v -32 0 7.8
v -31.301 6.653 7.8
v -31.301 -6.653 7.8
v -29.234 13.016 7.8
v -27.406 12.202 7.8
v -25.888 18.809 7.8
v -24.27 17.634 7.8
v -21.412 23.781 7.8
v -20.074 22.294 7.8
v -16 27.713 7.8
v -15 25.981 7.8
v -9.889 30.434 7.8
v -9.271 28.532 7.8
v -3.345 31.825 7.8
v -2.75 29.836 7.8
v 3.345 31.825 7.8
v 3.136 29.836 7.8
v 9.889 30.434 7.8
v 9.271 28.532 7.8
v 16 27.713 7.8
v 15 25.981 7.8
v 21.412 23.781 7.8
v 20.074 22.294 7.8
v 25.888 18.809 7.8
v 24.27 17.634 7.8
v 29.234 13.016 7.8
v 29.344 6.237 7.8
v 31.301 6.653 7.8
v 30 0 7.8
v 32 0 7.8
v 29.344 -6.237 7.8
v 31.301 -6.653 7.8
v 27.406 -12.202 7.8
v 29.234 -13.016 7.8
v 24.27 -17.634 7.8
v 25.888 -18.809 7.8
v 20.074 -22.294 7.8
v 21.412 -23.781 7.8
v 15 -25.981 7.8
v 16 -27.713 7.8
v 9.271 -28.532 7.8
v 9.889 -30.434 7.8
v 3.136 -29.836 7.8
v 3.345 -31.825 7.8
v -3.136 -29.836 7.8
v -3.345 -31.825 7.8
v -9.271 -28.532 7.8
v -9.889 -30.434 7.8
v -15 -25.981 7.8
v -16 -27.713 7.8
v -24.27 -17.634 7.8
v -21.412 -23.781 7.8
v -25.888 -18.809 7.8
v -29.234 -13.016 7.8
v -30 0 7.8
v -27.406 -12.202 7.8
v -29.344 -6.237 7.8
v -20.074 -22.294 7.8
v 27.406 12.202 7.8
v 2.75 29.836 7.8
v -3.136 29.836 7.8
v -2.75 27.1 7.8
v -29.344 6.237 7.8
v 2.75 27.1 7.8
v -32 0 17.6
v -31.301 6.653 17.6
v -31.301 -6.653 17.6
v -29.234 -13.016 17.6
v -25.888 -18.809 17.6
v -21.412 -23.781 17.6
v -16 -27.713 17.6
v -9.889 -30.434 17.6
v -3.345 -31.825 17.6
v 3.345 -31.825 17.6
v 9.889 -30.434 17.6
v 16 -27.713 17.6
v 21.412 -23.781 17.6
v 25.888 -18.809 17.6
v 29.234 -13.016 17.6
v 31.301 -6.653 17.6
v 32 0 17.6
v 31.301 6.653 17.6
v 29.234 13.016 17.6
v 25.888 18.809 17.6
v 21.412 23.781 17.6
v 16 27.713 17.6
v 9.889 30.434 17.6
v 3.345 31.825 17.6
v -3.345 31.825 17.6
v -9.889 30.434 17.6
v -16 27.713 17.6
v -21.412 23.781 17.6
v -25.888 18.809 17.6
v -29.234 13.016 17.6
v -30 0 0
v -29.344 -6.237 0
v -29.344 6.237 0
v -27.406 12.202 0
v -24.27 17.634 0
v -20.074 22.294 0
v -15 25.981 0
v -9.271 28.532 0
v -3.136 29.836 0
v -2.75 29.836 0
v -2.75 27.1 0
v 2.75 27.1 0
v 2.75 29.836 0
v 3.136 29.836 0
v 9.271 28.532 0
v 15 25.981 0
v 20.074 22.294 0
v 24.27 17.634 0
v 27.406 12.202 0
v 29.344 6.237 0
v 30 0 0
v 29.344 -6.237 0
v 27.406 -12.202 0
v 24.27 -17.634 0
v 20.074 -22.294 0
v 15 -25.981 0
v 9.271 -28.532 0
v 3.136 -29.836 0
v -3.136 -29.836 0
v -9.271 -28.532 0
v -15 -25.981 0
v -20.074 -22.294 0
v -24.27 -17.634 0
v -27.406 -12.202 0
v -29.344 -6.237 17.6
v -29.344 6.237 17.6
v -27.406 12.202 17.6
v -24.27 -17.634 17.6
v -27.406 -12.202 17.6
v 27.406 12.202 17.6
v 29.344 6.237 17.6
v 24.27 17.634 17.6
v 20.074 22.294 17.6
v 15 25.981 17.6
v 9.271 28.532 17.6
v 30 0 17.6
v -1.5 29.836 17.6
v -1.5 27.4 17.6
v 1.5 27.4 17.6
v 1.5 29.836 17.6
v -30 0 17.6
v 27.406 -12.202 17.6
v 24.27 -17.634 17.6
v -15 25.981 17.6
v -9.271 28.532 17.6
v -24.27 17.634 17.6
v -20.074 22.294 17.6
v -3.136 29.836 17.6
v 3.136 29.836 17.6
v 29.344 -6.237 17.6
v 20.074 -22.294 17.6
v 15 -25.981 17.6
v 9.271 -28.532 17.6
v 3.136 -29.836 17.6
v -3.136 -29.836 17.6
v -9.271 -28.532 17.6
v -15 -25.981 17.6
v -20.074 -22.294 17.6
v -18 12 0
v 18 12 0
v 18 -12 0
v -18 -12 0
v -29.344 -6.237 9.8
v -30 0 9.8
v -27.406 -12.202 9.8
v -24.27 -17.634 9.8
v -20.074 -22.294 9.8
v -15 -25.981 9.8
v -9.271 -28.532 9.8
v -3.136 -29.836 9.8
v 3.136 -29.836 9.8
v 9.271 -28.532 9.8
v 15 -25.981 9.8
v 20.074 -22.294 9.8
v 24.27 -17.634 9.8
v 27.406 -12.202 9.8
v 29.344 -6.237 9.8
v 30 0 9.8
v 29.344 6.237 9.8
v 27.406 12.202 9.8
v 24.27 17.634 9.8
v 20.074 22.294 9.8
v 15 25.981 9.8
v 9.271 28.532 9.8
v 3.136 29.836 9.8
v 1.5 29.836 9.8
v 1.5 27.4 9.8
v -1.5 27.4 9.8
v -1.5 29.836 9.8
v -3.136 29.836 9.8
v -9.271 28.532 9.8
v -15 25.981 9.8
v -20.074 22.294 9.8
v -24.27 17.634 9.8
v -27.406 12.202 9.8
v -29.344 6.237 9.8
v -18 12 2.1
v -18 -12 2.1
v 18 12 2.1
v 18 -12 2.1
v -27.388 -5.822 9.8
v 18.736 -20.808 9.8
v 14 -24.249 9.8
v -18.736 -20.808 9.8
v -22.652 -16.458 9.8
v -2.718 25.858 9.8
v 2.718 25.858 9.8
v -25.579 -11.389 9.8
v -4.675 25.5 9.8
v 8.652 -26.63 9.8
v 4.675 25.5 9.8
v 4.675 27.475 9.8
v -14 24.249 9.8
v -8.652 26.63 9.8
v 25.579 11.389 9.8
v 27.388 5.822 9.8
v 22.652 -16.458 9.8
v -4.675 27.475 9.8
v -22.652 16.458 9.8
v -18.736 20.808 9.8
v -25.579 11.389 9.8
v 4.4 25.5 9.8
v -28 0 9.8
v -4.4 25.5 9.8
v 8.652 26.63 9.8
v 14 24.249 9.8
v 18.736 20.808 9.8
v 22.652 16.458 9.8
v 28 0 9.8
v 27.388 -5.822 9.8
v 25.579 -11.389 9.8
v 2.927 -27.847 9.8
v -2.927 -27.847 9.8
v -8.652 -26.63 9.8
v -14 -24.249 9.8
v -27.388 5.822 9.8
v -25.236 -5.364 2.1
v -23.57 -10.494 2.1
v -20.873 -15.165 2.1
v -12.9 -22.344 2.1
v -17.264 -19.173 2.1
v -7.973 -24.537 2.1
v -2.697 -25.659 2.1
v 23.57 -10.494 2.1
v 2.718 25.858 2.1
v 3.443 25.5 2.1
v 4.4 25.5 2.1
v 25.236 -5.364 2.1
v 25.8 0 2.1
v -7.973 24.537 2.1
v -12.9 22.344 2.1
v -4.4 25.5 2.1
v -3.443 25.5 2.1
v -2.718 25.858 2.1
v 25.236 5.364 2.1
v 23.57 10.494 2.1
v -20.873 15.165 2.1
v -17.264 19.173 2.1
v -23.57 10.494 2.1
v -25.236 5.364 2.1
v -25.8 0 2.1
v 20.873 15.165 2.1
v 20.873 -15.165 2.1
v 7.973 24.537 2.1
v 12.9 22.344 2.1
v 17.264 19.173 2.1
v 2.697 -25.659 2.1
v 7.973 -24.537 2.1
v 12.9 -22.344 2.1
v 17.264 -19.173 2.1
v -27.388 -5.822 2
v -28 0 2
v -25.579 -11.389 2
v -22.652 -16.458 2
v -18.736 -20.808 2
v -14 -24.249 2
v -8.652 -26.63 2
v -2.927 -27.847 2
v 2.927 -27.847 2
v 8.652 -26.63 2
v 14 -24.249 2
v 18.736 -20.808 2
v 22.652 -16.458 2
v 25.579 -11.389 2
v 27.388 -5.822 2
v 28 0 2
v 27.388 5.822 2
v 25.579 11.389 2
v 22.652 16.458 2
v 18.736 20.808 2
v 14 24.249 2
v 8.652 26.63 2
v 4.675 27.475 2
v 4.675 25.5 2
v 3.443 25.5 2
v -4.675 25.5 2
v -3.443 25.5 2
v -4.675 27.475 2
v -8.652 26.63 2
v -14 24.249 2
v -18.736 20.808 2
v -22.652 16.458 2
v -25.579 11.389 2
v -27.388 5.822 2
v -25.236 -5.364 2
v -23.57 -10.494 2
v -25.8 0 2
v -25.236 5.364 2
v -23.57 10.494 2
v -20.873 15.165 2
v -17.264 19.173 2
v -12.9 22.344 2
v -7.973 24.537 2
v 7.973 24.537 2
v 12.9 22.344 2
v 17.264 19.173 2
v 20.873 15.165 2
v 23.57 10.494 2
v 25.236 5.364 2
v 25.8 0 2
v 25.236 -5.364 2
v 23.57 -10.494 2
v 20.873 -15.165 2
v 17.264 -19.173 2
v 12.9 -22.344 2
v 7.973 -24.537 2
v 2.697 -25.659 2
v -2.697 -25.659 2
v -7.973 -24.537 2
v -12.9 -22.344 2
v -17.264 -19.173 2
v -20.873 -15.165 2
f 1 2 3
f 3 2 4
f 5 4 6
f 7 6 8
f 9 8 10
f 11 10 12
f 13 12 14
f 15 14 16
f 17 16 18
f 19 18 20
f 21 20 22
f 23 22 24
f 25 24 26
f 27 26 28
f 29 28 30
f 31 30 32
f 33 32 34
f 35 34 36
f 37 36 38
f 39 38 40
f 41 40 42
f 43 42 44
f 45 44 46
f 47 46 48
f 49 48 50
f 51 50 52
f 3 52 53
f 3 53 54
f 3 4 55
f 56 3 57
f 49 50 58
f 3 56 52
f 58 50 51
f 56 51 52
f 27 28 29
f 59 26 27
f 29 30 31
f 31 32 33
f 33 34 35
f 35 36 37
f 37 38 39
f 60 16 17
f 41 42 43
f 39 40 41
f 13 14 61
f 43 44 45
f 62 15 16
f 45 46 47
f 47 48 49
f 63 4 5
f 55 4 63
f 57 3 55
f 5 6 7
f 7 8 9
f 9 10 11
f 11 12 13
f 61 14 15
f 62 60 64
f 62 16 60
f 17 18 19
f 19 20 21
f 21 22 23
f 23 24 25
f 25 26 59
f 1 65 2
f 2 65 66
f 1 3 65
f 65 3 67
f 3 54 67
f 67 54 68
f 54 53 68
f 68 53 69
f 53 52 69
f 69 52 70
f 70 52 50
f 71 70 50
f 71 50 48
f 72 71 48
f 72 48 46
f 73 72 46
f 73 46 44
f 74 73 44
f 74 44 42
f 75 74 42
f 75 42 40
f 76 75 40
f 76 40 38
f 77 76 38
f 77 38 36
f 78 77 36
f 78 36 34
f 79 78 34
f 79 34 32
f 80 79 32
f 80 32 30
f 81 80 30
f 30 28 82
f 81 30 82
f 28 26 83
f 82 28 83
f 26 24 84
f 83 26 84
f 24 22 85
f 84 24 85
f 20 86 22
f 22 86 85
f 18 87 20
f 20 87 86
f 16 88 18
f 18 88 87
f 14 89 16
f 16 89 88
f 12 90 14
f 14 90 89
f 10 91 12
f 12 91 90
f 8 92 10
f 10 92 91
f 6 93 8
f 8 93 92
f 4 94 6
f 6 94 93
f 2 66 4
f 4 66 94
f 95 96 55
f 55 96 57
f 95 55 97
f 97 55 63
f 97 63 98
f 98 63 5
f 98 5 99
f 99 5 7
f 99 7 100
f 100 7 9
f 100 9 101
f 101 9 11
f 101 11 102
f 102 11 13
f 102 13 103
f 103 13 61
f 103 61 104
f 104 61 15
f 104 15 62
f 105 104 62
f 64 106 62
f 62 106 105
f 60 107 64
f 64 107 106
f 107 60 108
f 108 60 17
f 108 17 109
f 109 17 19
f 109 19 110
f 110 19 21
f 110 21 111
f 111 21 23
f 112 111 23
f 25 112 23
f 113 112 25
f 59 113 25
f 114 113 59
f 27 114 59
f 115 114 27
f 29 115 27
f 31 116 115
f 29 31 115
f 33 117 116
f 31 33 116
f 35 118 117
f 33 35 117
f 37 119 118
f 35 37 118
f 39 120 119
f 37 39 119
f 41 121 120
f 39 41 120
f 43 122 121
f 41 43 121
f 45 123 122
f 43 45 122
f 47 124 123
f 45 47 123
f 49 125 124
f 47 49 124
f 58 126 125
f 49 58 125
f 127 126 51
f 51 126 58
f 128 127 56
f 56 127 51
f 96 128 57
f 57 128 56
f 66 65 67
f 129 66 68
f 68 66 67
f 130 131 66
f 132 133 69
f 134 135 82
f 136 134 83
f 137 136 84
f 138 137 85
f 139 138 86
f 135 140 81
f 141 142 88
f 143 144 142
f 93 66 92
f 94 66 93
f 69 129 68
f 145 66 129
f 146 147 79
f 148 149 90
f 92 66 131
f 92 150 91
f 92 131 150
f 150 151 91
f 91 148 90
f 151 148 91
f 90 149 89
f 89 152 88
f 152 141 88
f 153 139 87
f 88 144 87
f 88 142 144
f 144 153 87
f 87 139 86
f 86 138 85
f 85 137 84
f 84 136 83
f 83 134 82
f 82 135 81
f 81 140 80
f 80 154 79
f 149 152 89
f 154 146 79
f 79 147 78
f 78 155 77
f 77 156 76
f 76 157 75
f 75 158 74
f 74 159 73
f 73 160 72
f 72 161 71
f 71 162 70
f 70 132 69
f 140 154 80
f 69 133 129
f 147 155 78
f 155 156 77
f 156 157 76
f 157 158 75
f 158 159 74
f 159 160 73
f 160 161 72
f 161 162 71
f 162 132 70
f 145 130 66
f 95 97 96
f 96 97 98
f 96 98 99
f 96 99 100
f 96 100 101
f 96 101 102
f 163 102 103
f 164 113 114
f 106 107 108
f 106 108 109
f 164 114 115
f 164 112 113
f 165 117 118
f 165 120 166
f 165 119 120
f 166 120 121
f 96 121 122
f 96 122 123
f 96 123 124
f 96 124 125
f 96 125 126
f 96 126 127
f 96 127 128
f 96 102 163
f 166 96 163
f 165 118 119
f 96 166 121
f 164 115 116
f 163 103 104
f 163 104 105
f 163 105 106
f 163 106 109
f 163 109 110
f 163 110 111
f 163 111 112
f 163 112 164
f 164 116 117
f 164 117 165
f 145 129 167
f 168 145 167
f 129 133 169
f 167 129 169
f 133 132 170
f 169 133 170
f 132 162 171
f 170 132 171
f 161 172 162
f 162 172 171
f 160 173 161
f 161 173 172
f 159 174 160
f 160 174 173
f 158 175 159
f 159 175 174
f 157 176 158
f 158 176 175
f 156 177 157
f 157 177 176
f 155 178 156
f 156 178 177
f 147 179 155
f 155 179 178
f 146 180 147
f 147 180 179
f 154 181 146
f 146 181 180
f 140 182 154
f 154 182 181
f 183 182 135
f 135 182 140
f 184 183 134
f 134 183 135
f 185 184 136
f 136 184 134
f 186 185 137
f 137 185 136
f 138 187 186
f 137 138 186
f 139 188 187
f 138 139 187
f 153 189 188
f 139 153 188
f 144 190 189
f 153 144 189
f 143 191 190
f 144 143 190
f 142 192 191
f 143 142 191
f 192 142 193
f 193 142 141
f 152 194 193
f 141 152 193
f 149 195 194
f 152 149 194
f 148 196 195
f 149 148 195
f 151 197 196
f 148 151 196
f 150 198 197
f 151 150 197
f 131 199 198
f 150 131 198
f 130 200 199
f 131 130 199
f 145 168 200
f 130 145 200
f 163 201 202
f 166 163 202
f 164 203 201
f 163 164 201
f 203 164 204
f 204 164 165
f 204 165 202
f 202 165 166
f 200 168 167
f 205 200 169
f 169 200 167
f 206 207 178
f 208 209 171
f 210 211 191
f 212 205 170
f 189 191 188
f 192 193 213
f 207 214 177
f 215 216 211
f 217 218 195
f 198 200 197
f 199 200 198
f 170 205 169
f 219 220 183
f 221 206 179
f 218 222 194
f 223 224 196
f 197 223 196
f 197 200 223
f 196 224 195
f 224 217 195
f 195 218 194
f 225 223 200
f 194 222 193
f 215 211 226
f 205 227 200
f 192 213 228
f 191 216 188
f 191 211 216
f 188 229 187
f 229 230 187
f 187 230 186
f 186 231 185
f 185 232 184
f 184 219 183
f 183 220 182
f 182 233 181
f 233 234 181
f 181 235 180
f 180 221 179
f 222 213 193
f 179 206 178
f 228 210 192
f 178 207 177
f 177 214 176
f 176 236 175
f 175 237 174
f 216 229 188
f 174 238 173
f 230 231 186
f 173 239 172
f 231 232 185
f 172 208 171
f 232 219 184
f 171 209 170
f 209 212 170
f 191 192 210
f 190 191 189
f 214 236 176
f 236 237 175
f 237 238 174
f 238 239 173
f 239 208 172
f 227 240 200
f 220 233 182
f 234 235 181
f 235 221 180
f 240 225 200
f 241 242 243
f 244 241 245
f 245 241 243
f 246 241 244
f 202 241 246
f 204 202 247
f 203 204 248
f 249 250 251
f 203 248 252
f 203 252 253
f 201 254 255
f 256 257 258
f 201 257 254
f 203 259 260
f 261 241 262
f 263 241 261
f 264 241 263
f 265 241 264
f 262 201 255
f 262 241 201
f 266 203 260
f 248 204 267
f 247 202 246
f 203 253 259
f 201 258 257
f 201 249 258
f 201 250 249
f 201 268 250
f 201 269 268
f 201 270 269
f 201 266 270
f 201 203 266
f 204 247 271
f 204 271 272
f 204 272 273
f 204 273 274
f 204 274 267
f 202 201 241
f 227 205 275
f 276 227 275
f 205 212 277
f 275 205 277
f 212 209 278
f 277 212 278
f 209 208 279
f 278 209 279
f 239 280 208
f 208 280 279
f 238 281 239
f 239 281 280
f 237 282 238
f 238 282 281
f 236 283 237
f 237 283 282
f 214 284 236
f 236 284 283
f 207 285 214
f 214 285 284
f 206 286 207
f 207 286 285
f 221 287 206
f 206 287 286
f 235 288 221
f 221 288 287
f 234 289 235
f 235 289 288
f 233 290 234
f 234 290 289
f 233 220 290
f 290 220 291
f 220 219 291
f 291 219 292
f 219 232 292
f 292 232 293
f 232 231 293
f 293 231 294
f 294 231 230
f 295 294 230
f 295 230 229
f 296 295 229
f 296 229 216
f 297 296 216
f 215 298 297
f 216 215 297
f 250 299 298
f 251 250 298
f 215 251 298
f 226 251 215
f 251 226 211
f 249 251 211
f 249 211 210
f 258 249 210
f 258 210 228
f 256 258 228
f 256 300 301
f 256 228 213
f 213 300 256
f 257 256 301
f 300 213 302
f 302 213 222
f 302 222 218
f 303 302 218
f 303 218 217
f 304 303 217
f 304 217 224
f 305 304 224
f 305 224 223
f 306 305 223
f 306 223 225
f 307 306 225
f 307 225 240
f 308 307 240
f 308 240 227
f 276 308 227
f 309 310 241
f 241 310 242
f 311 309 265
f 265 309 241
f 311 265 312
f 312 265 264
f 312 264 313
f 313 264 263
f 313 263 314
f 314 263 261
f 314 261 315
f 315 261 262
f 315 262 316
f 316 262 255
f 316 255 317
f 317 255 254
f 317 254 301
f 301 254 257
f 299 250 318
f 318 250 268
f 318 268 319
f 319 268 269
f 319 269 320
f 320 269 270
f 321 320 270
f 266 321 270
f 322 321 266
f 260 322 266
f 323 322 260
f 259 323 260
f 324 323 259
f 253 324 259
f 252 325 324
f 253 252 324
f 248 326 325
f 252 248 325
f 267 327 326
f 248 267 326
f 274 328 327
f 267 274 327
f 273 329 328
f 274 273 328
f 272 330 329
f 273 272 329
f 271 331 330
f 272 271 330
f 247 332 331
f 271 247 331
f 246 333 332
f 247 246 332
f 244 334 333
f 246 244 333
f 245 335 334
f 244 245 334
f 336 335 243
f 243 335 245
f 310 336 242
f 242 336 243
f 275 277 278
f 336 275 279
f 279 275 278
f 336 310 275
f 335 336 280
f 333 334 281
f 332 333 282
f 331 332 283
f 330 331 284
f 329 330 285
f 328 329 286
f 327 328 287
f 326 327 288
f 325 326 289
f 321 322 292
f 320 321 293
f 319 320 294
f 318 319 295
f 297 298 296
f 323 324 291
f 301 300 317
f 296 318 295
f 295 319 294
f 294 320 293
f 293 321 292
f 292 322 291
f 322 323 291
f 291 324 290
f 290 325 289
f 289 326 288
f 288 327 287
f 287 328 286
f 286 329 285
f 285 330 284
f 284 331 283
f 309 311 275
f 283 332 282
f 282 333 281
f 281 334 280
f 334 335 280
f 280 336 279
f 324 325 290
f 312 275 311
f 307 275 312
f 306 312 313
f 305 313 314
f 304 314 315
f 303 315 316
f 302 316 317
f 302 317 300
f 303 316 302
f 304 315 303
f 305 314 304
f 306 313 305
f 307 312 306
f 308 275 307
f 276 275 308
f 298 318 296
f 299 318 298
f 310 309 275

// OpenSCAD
// file: settingsLenghts.scad
//Ancho de la pared
pared  = 2;
//Radio del centro hueco
radioC = 11;
//Alto de la capa de apertura
aperH = 5.5;
//Ancho de la apertura
aperW = 5+1.1;//Ancho mas holgura
//Ancho del lente macro
macroW = 9.3;
//Profundidad del macro
macroH = 3;
//Profundidad parte de atras y delante
profDelante = 6;
profAtras = 6;
//Ceja entre uniones de cilindros
cejaH = 6;
guiaParedW = 2;
tmpHolg = 1.8;


//Correcc

//
//CÁMARA
camP = 3;//Grueso de la pared del presente modelo
camW = 105;//Ancho de la cámara
camH = 61;//Alto de la cámara
camD = 23.5;//Profundidad de la cámara
camHlg = 6;//Holgura que se deja para los tornillos
camLW = 57/2;//Radio del exterior del lente
torW  = 2;//Radio

//
//Ancho de tubo principal (grande)
mcW = 32;//radio
mcH = 28;

//Dimensiones del difractador
diffW = 51;//Alto y Ancho
diffD=1;//Profundidad del difractador
diffWinW=36;//Ancho de la ventana de difracción
diffWinH=24;//Alto de la ventana de difracción

//
//Adquisición de luz
luzHBig = 10; //donde va el tornillo
luzWBig = 28; //27:diametro donde va el tornillo
luzHBigT = 4; //alto del tornillo
luzWBigT = 6; //6: ancho del tornillo
luzHRosca = 7; //donde va la rosca
luzWRosca = 23; //22:diametro de donde va la rosca



//Cuadro guia para que no se mueva
guiaH = cejaH;
guiaW = 3;



module creaPared(h){
	difference(){
		//Pone el cilindro principal
		cylinder(r=mcW,h);

		//Le quita el contorno exterior
		translate([0,0,-0.1])
		cylinder(r=mcW-pared,h+0.2);
	}
}
module creaGuiaTornilloCentrada(){
	translate([-luzWBigT/2,-luzWBigT/2,0])
	cube([luzWBigT,luzWBigT,luzHBig-1+0.2]);
}
module creaGuiaTornilloCentradaArea(){
	tmpW = luzWBigT + pared;
	tmpH = luzHBig  + pared;
	translate([-tmpW/2,-tmpW/2,0])
	cube([tmpW,tmpW,tmpH]);
}
module creaGuia(h){
	//Pone el circulo soporte
	difference(){
		cylinder(r=mcW,h);
		translate([0,0,-0.1])
		cylinder(r=mcW-pared,h+0.2);
	}
	//Pone la guia1
	translate([0,mcW-pared-(guiaW/2)+0.4,0])
	creaGuiaCentrada(h);
}
module creaGuiaHembra(h){
	//Pone el circulo soporte
	tmpW = mcW-guiaW;	
	creaPared(sopH);
	sopH = 1.35;
	
	//Pone la pared de la guia
	difference(){
		cylinder(r=(mcW-pared),sopH+h);
		translate([0,0,-0.1])
		cylinder(r=(mcW-pared-guiaParedW),sopH+h+0.2);
		//Pone la guia
		translate([-(guiaW/3),tmpW,sopH])
		creaGuiaCentrada(sopH+h+0.2);
		translate([(guiaW/3),tmpW,sopH])
		creaGuiaCentrada(sopH+h+0.2);
	}
}
module creaGuiaCentrada(h){
	translate([-guiaW/2,-guiaW/2,0])
	cube([guiaW,guiaW,h]);
}
// main file
include <settingsLenghts.scad>


/////////////////////////////////////

muescaW=5;

tmpH = cejaH+pared+tmpHolg;


difference(){
	creaFigura();

	//Quita aro de exceso
	translate([0,0,pared])
	creaAro();
}


//Crea pared arriba
translate([0,0,tmpH-pared])
difference(){
	cylinder(r=(mcW-pared),pared);
	translate([0,0,-0.1])
	cylinder(r=(mcW-pared*3),pared+0.2);
	translate([0,0,-pared])
	creaAro();
}


//Pone guia macho
translate([0,0,(tmpH-pared)])
creaGuia((cejaH+pared+tmpHolg));



module creaFigura(){			
	difference(){
		//Pone el cilindro principal
		cylinder(r=mcW-pared,tmpH);
		//Quita el centro
		translate([0,0,(pared+0.1)])
		cylinder(r=(mcW-pared-pared-2),(tmpH-pared));
		//Le quita la ventana
		translate([-diffWinW/2,-diffWinH/2,-0.1])
		cube([diffWinW,diffWinH,diffD+pared+0.2]);
		//Pone la guia
		translate([-(muescaW/2),(mcW-muescaW+0.6),-0.1])
		cube([muescaW,muescaW,(muescaW*2)]);
	}
}


module creaAro(){
	difference(){
		//Pone el aro
		cylinder(r=(mcW-(pared*2)),tmpH);
		translate([0,0,-0.1])
		cylinder(r=(mcW-(pared*3)-0.2),pared+0.2);
		//Pone la guia
		translate([-(muescaW*1.7/2),(mcW-muescaW-1),-0.1])
		cube([muescaW*1.7,muescaW*1.,(muescaW*2)]);
	}
}
